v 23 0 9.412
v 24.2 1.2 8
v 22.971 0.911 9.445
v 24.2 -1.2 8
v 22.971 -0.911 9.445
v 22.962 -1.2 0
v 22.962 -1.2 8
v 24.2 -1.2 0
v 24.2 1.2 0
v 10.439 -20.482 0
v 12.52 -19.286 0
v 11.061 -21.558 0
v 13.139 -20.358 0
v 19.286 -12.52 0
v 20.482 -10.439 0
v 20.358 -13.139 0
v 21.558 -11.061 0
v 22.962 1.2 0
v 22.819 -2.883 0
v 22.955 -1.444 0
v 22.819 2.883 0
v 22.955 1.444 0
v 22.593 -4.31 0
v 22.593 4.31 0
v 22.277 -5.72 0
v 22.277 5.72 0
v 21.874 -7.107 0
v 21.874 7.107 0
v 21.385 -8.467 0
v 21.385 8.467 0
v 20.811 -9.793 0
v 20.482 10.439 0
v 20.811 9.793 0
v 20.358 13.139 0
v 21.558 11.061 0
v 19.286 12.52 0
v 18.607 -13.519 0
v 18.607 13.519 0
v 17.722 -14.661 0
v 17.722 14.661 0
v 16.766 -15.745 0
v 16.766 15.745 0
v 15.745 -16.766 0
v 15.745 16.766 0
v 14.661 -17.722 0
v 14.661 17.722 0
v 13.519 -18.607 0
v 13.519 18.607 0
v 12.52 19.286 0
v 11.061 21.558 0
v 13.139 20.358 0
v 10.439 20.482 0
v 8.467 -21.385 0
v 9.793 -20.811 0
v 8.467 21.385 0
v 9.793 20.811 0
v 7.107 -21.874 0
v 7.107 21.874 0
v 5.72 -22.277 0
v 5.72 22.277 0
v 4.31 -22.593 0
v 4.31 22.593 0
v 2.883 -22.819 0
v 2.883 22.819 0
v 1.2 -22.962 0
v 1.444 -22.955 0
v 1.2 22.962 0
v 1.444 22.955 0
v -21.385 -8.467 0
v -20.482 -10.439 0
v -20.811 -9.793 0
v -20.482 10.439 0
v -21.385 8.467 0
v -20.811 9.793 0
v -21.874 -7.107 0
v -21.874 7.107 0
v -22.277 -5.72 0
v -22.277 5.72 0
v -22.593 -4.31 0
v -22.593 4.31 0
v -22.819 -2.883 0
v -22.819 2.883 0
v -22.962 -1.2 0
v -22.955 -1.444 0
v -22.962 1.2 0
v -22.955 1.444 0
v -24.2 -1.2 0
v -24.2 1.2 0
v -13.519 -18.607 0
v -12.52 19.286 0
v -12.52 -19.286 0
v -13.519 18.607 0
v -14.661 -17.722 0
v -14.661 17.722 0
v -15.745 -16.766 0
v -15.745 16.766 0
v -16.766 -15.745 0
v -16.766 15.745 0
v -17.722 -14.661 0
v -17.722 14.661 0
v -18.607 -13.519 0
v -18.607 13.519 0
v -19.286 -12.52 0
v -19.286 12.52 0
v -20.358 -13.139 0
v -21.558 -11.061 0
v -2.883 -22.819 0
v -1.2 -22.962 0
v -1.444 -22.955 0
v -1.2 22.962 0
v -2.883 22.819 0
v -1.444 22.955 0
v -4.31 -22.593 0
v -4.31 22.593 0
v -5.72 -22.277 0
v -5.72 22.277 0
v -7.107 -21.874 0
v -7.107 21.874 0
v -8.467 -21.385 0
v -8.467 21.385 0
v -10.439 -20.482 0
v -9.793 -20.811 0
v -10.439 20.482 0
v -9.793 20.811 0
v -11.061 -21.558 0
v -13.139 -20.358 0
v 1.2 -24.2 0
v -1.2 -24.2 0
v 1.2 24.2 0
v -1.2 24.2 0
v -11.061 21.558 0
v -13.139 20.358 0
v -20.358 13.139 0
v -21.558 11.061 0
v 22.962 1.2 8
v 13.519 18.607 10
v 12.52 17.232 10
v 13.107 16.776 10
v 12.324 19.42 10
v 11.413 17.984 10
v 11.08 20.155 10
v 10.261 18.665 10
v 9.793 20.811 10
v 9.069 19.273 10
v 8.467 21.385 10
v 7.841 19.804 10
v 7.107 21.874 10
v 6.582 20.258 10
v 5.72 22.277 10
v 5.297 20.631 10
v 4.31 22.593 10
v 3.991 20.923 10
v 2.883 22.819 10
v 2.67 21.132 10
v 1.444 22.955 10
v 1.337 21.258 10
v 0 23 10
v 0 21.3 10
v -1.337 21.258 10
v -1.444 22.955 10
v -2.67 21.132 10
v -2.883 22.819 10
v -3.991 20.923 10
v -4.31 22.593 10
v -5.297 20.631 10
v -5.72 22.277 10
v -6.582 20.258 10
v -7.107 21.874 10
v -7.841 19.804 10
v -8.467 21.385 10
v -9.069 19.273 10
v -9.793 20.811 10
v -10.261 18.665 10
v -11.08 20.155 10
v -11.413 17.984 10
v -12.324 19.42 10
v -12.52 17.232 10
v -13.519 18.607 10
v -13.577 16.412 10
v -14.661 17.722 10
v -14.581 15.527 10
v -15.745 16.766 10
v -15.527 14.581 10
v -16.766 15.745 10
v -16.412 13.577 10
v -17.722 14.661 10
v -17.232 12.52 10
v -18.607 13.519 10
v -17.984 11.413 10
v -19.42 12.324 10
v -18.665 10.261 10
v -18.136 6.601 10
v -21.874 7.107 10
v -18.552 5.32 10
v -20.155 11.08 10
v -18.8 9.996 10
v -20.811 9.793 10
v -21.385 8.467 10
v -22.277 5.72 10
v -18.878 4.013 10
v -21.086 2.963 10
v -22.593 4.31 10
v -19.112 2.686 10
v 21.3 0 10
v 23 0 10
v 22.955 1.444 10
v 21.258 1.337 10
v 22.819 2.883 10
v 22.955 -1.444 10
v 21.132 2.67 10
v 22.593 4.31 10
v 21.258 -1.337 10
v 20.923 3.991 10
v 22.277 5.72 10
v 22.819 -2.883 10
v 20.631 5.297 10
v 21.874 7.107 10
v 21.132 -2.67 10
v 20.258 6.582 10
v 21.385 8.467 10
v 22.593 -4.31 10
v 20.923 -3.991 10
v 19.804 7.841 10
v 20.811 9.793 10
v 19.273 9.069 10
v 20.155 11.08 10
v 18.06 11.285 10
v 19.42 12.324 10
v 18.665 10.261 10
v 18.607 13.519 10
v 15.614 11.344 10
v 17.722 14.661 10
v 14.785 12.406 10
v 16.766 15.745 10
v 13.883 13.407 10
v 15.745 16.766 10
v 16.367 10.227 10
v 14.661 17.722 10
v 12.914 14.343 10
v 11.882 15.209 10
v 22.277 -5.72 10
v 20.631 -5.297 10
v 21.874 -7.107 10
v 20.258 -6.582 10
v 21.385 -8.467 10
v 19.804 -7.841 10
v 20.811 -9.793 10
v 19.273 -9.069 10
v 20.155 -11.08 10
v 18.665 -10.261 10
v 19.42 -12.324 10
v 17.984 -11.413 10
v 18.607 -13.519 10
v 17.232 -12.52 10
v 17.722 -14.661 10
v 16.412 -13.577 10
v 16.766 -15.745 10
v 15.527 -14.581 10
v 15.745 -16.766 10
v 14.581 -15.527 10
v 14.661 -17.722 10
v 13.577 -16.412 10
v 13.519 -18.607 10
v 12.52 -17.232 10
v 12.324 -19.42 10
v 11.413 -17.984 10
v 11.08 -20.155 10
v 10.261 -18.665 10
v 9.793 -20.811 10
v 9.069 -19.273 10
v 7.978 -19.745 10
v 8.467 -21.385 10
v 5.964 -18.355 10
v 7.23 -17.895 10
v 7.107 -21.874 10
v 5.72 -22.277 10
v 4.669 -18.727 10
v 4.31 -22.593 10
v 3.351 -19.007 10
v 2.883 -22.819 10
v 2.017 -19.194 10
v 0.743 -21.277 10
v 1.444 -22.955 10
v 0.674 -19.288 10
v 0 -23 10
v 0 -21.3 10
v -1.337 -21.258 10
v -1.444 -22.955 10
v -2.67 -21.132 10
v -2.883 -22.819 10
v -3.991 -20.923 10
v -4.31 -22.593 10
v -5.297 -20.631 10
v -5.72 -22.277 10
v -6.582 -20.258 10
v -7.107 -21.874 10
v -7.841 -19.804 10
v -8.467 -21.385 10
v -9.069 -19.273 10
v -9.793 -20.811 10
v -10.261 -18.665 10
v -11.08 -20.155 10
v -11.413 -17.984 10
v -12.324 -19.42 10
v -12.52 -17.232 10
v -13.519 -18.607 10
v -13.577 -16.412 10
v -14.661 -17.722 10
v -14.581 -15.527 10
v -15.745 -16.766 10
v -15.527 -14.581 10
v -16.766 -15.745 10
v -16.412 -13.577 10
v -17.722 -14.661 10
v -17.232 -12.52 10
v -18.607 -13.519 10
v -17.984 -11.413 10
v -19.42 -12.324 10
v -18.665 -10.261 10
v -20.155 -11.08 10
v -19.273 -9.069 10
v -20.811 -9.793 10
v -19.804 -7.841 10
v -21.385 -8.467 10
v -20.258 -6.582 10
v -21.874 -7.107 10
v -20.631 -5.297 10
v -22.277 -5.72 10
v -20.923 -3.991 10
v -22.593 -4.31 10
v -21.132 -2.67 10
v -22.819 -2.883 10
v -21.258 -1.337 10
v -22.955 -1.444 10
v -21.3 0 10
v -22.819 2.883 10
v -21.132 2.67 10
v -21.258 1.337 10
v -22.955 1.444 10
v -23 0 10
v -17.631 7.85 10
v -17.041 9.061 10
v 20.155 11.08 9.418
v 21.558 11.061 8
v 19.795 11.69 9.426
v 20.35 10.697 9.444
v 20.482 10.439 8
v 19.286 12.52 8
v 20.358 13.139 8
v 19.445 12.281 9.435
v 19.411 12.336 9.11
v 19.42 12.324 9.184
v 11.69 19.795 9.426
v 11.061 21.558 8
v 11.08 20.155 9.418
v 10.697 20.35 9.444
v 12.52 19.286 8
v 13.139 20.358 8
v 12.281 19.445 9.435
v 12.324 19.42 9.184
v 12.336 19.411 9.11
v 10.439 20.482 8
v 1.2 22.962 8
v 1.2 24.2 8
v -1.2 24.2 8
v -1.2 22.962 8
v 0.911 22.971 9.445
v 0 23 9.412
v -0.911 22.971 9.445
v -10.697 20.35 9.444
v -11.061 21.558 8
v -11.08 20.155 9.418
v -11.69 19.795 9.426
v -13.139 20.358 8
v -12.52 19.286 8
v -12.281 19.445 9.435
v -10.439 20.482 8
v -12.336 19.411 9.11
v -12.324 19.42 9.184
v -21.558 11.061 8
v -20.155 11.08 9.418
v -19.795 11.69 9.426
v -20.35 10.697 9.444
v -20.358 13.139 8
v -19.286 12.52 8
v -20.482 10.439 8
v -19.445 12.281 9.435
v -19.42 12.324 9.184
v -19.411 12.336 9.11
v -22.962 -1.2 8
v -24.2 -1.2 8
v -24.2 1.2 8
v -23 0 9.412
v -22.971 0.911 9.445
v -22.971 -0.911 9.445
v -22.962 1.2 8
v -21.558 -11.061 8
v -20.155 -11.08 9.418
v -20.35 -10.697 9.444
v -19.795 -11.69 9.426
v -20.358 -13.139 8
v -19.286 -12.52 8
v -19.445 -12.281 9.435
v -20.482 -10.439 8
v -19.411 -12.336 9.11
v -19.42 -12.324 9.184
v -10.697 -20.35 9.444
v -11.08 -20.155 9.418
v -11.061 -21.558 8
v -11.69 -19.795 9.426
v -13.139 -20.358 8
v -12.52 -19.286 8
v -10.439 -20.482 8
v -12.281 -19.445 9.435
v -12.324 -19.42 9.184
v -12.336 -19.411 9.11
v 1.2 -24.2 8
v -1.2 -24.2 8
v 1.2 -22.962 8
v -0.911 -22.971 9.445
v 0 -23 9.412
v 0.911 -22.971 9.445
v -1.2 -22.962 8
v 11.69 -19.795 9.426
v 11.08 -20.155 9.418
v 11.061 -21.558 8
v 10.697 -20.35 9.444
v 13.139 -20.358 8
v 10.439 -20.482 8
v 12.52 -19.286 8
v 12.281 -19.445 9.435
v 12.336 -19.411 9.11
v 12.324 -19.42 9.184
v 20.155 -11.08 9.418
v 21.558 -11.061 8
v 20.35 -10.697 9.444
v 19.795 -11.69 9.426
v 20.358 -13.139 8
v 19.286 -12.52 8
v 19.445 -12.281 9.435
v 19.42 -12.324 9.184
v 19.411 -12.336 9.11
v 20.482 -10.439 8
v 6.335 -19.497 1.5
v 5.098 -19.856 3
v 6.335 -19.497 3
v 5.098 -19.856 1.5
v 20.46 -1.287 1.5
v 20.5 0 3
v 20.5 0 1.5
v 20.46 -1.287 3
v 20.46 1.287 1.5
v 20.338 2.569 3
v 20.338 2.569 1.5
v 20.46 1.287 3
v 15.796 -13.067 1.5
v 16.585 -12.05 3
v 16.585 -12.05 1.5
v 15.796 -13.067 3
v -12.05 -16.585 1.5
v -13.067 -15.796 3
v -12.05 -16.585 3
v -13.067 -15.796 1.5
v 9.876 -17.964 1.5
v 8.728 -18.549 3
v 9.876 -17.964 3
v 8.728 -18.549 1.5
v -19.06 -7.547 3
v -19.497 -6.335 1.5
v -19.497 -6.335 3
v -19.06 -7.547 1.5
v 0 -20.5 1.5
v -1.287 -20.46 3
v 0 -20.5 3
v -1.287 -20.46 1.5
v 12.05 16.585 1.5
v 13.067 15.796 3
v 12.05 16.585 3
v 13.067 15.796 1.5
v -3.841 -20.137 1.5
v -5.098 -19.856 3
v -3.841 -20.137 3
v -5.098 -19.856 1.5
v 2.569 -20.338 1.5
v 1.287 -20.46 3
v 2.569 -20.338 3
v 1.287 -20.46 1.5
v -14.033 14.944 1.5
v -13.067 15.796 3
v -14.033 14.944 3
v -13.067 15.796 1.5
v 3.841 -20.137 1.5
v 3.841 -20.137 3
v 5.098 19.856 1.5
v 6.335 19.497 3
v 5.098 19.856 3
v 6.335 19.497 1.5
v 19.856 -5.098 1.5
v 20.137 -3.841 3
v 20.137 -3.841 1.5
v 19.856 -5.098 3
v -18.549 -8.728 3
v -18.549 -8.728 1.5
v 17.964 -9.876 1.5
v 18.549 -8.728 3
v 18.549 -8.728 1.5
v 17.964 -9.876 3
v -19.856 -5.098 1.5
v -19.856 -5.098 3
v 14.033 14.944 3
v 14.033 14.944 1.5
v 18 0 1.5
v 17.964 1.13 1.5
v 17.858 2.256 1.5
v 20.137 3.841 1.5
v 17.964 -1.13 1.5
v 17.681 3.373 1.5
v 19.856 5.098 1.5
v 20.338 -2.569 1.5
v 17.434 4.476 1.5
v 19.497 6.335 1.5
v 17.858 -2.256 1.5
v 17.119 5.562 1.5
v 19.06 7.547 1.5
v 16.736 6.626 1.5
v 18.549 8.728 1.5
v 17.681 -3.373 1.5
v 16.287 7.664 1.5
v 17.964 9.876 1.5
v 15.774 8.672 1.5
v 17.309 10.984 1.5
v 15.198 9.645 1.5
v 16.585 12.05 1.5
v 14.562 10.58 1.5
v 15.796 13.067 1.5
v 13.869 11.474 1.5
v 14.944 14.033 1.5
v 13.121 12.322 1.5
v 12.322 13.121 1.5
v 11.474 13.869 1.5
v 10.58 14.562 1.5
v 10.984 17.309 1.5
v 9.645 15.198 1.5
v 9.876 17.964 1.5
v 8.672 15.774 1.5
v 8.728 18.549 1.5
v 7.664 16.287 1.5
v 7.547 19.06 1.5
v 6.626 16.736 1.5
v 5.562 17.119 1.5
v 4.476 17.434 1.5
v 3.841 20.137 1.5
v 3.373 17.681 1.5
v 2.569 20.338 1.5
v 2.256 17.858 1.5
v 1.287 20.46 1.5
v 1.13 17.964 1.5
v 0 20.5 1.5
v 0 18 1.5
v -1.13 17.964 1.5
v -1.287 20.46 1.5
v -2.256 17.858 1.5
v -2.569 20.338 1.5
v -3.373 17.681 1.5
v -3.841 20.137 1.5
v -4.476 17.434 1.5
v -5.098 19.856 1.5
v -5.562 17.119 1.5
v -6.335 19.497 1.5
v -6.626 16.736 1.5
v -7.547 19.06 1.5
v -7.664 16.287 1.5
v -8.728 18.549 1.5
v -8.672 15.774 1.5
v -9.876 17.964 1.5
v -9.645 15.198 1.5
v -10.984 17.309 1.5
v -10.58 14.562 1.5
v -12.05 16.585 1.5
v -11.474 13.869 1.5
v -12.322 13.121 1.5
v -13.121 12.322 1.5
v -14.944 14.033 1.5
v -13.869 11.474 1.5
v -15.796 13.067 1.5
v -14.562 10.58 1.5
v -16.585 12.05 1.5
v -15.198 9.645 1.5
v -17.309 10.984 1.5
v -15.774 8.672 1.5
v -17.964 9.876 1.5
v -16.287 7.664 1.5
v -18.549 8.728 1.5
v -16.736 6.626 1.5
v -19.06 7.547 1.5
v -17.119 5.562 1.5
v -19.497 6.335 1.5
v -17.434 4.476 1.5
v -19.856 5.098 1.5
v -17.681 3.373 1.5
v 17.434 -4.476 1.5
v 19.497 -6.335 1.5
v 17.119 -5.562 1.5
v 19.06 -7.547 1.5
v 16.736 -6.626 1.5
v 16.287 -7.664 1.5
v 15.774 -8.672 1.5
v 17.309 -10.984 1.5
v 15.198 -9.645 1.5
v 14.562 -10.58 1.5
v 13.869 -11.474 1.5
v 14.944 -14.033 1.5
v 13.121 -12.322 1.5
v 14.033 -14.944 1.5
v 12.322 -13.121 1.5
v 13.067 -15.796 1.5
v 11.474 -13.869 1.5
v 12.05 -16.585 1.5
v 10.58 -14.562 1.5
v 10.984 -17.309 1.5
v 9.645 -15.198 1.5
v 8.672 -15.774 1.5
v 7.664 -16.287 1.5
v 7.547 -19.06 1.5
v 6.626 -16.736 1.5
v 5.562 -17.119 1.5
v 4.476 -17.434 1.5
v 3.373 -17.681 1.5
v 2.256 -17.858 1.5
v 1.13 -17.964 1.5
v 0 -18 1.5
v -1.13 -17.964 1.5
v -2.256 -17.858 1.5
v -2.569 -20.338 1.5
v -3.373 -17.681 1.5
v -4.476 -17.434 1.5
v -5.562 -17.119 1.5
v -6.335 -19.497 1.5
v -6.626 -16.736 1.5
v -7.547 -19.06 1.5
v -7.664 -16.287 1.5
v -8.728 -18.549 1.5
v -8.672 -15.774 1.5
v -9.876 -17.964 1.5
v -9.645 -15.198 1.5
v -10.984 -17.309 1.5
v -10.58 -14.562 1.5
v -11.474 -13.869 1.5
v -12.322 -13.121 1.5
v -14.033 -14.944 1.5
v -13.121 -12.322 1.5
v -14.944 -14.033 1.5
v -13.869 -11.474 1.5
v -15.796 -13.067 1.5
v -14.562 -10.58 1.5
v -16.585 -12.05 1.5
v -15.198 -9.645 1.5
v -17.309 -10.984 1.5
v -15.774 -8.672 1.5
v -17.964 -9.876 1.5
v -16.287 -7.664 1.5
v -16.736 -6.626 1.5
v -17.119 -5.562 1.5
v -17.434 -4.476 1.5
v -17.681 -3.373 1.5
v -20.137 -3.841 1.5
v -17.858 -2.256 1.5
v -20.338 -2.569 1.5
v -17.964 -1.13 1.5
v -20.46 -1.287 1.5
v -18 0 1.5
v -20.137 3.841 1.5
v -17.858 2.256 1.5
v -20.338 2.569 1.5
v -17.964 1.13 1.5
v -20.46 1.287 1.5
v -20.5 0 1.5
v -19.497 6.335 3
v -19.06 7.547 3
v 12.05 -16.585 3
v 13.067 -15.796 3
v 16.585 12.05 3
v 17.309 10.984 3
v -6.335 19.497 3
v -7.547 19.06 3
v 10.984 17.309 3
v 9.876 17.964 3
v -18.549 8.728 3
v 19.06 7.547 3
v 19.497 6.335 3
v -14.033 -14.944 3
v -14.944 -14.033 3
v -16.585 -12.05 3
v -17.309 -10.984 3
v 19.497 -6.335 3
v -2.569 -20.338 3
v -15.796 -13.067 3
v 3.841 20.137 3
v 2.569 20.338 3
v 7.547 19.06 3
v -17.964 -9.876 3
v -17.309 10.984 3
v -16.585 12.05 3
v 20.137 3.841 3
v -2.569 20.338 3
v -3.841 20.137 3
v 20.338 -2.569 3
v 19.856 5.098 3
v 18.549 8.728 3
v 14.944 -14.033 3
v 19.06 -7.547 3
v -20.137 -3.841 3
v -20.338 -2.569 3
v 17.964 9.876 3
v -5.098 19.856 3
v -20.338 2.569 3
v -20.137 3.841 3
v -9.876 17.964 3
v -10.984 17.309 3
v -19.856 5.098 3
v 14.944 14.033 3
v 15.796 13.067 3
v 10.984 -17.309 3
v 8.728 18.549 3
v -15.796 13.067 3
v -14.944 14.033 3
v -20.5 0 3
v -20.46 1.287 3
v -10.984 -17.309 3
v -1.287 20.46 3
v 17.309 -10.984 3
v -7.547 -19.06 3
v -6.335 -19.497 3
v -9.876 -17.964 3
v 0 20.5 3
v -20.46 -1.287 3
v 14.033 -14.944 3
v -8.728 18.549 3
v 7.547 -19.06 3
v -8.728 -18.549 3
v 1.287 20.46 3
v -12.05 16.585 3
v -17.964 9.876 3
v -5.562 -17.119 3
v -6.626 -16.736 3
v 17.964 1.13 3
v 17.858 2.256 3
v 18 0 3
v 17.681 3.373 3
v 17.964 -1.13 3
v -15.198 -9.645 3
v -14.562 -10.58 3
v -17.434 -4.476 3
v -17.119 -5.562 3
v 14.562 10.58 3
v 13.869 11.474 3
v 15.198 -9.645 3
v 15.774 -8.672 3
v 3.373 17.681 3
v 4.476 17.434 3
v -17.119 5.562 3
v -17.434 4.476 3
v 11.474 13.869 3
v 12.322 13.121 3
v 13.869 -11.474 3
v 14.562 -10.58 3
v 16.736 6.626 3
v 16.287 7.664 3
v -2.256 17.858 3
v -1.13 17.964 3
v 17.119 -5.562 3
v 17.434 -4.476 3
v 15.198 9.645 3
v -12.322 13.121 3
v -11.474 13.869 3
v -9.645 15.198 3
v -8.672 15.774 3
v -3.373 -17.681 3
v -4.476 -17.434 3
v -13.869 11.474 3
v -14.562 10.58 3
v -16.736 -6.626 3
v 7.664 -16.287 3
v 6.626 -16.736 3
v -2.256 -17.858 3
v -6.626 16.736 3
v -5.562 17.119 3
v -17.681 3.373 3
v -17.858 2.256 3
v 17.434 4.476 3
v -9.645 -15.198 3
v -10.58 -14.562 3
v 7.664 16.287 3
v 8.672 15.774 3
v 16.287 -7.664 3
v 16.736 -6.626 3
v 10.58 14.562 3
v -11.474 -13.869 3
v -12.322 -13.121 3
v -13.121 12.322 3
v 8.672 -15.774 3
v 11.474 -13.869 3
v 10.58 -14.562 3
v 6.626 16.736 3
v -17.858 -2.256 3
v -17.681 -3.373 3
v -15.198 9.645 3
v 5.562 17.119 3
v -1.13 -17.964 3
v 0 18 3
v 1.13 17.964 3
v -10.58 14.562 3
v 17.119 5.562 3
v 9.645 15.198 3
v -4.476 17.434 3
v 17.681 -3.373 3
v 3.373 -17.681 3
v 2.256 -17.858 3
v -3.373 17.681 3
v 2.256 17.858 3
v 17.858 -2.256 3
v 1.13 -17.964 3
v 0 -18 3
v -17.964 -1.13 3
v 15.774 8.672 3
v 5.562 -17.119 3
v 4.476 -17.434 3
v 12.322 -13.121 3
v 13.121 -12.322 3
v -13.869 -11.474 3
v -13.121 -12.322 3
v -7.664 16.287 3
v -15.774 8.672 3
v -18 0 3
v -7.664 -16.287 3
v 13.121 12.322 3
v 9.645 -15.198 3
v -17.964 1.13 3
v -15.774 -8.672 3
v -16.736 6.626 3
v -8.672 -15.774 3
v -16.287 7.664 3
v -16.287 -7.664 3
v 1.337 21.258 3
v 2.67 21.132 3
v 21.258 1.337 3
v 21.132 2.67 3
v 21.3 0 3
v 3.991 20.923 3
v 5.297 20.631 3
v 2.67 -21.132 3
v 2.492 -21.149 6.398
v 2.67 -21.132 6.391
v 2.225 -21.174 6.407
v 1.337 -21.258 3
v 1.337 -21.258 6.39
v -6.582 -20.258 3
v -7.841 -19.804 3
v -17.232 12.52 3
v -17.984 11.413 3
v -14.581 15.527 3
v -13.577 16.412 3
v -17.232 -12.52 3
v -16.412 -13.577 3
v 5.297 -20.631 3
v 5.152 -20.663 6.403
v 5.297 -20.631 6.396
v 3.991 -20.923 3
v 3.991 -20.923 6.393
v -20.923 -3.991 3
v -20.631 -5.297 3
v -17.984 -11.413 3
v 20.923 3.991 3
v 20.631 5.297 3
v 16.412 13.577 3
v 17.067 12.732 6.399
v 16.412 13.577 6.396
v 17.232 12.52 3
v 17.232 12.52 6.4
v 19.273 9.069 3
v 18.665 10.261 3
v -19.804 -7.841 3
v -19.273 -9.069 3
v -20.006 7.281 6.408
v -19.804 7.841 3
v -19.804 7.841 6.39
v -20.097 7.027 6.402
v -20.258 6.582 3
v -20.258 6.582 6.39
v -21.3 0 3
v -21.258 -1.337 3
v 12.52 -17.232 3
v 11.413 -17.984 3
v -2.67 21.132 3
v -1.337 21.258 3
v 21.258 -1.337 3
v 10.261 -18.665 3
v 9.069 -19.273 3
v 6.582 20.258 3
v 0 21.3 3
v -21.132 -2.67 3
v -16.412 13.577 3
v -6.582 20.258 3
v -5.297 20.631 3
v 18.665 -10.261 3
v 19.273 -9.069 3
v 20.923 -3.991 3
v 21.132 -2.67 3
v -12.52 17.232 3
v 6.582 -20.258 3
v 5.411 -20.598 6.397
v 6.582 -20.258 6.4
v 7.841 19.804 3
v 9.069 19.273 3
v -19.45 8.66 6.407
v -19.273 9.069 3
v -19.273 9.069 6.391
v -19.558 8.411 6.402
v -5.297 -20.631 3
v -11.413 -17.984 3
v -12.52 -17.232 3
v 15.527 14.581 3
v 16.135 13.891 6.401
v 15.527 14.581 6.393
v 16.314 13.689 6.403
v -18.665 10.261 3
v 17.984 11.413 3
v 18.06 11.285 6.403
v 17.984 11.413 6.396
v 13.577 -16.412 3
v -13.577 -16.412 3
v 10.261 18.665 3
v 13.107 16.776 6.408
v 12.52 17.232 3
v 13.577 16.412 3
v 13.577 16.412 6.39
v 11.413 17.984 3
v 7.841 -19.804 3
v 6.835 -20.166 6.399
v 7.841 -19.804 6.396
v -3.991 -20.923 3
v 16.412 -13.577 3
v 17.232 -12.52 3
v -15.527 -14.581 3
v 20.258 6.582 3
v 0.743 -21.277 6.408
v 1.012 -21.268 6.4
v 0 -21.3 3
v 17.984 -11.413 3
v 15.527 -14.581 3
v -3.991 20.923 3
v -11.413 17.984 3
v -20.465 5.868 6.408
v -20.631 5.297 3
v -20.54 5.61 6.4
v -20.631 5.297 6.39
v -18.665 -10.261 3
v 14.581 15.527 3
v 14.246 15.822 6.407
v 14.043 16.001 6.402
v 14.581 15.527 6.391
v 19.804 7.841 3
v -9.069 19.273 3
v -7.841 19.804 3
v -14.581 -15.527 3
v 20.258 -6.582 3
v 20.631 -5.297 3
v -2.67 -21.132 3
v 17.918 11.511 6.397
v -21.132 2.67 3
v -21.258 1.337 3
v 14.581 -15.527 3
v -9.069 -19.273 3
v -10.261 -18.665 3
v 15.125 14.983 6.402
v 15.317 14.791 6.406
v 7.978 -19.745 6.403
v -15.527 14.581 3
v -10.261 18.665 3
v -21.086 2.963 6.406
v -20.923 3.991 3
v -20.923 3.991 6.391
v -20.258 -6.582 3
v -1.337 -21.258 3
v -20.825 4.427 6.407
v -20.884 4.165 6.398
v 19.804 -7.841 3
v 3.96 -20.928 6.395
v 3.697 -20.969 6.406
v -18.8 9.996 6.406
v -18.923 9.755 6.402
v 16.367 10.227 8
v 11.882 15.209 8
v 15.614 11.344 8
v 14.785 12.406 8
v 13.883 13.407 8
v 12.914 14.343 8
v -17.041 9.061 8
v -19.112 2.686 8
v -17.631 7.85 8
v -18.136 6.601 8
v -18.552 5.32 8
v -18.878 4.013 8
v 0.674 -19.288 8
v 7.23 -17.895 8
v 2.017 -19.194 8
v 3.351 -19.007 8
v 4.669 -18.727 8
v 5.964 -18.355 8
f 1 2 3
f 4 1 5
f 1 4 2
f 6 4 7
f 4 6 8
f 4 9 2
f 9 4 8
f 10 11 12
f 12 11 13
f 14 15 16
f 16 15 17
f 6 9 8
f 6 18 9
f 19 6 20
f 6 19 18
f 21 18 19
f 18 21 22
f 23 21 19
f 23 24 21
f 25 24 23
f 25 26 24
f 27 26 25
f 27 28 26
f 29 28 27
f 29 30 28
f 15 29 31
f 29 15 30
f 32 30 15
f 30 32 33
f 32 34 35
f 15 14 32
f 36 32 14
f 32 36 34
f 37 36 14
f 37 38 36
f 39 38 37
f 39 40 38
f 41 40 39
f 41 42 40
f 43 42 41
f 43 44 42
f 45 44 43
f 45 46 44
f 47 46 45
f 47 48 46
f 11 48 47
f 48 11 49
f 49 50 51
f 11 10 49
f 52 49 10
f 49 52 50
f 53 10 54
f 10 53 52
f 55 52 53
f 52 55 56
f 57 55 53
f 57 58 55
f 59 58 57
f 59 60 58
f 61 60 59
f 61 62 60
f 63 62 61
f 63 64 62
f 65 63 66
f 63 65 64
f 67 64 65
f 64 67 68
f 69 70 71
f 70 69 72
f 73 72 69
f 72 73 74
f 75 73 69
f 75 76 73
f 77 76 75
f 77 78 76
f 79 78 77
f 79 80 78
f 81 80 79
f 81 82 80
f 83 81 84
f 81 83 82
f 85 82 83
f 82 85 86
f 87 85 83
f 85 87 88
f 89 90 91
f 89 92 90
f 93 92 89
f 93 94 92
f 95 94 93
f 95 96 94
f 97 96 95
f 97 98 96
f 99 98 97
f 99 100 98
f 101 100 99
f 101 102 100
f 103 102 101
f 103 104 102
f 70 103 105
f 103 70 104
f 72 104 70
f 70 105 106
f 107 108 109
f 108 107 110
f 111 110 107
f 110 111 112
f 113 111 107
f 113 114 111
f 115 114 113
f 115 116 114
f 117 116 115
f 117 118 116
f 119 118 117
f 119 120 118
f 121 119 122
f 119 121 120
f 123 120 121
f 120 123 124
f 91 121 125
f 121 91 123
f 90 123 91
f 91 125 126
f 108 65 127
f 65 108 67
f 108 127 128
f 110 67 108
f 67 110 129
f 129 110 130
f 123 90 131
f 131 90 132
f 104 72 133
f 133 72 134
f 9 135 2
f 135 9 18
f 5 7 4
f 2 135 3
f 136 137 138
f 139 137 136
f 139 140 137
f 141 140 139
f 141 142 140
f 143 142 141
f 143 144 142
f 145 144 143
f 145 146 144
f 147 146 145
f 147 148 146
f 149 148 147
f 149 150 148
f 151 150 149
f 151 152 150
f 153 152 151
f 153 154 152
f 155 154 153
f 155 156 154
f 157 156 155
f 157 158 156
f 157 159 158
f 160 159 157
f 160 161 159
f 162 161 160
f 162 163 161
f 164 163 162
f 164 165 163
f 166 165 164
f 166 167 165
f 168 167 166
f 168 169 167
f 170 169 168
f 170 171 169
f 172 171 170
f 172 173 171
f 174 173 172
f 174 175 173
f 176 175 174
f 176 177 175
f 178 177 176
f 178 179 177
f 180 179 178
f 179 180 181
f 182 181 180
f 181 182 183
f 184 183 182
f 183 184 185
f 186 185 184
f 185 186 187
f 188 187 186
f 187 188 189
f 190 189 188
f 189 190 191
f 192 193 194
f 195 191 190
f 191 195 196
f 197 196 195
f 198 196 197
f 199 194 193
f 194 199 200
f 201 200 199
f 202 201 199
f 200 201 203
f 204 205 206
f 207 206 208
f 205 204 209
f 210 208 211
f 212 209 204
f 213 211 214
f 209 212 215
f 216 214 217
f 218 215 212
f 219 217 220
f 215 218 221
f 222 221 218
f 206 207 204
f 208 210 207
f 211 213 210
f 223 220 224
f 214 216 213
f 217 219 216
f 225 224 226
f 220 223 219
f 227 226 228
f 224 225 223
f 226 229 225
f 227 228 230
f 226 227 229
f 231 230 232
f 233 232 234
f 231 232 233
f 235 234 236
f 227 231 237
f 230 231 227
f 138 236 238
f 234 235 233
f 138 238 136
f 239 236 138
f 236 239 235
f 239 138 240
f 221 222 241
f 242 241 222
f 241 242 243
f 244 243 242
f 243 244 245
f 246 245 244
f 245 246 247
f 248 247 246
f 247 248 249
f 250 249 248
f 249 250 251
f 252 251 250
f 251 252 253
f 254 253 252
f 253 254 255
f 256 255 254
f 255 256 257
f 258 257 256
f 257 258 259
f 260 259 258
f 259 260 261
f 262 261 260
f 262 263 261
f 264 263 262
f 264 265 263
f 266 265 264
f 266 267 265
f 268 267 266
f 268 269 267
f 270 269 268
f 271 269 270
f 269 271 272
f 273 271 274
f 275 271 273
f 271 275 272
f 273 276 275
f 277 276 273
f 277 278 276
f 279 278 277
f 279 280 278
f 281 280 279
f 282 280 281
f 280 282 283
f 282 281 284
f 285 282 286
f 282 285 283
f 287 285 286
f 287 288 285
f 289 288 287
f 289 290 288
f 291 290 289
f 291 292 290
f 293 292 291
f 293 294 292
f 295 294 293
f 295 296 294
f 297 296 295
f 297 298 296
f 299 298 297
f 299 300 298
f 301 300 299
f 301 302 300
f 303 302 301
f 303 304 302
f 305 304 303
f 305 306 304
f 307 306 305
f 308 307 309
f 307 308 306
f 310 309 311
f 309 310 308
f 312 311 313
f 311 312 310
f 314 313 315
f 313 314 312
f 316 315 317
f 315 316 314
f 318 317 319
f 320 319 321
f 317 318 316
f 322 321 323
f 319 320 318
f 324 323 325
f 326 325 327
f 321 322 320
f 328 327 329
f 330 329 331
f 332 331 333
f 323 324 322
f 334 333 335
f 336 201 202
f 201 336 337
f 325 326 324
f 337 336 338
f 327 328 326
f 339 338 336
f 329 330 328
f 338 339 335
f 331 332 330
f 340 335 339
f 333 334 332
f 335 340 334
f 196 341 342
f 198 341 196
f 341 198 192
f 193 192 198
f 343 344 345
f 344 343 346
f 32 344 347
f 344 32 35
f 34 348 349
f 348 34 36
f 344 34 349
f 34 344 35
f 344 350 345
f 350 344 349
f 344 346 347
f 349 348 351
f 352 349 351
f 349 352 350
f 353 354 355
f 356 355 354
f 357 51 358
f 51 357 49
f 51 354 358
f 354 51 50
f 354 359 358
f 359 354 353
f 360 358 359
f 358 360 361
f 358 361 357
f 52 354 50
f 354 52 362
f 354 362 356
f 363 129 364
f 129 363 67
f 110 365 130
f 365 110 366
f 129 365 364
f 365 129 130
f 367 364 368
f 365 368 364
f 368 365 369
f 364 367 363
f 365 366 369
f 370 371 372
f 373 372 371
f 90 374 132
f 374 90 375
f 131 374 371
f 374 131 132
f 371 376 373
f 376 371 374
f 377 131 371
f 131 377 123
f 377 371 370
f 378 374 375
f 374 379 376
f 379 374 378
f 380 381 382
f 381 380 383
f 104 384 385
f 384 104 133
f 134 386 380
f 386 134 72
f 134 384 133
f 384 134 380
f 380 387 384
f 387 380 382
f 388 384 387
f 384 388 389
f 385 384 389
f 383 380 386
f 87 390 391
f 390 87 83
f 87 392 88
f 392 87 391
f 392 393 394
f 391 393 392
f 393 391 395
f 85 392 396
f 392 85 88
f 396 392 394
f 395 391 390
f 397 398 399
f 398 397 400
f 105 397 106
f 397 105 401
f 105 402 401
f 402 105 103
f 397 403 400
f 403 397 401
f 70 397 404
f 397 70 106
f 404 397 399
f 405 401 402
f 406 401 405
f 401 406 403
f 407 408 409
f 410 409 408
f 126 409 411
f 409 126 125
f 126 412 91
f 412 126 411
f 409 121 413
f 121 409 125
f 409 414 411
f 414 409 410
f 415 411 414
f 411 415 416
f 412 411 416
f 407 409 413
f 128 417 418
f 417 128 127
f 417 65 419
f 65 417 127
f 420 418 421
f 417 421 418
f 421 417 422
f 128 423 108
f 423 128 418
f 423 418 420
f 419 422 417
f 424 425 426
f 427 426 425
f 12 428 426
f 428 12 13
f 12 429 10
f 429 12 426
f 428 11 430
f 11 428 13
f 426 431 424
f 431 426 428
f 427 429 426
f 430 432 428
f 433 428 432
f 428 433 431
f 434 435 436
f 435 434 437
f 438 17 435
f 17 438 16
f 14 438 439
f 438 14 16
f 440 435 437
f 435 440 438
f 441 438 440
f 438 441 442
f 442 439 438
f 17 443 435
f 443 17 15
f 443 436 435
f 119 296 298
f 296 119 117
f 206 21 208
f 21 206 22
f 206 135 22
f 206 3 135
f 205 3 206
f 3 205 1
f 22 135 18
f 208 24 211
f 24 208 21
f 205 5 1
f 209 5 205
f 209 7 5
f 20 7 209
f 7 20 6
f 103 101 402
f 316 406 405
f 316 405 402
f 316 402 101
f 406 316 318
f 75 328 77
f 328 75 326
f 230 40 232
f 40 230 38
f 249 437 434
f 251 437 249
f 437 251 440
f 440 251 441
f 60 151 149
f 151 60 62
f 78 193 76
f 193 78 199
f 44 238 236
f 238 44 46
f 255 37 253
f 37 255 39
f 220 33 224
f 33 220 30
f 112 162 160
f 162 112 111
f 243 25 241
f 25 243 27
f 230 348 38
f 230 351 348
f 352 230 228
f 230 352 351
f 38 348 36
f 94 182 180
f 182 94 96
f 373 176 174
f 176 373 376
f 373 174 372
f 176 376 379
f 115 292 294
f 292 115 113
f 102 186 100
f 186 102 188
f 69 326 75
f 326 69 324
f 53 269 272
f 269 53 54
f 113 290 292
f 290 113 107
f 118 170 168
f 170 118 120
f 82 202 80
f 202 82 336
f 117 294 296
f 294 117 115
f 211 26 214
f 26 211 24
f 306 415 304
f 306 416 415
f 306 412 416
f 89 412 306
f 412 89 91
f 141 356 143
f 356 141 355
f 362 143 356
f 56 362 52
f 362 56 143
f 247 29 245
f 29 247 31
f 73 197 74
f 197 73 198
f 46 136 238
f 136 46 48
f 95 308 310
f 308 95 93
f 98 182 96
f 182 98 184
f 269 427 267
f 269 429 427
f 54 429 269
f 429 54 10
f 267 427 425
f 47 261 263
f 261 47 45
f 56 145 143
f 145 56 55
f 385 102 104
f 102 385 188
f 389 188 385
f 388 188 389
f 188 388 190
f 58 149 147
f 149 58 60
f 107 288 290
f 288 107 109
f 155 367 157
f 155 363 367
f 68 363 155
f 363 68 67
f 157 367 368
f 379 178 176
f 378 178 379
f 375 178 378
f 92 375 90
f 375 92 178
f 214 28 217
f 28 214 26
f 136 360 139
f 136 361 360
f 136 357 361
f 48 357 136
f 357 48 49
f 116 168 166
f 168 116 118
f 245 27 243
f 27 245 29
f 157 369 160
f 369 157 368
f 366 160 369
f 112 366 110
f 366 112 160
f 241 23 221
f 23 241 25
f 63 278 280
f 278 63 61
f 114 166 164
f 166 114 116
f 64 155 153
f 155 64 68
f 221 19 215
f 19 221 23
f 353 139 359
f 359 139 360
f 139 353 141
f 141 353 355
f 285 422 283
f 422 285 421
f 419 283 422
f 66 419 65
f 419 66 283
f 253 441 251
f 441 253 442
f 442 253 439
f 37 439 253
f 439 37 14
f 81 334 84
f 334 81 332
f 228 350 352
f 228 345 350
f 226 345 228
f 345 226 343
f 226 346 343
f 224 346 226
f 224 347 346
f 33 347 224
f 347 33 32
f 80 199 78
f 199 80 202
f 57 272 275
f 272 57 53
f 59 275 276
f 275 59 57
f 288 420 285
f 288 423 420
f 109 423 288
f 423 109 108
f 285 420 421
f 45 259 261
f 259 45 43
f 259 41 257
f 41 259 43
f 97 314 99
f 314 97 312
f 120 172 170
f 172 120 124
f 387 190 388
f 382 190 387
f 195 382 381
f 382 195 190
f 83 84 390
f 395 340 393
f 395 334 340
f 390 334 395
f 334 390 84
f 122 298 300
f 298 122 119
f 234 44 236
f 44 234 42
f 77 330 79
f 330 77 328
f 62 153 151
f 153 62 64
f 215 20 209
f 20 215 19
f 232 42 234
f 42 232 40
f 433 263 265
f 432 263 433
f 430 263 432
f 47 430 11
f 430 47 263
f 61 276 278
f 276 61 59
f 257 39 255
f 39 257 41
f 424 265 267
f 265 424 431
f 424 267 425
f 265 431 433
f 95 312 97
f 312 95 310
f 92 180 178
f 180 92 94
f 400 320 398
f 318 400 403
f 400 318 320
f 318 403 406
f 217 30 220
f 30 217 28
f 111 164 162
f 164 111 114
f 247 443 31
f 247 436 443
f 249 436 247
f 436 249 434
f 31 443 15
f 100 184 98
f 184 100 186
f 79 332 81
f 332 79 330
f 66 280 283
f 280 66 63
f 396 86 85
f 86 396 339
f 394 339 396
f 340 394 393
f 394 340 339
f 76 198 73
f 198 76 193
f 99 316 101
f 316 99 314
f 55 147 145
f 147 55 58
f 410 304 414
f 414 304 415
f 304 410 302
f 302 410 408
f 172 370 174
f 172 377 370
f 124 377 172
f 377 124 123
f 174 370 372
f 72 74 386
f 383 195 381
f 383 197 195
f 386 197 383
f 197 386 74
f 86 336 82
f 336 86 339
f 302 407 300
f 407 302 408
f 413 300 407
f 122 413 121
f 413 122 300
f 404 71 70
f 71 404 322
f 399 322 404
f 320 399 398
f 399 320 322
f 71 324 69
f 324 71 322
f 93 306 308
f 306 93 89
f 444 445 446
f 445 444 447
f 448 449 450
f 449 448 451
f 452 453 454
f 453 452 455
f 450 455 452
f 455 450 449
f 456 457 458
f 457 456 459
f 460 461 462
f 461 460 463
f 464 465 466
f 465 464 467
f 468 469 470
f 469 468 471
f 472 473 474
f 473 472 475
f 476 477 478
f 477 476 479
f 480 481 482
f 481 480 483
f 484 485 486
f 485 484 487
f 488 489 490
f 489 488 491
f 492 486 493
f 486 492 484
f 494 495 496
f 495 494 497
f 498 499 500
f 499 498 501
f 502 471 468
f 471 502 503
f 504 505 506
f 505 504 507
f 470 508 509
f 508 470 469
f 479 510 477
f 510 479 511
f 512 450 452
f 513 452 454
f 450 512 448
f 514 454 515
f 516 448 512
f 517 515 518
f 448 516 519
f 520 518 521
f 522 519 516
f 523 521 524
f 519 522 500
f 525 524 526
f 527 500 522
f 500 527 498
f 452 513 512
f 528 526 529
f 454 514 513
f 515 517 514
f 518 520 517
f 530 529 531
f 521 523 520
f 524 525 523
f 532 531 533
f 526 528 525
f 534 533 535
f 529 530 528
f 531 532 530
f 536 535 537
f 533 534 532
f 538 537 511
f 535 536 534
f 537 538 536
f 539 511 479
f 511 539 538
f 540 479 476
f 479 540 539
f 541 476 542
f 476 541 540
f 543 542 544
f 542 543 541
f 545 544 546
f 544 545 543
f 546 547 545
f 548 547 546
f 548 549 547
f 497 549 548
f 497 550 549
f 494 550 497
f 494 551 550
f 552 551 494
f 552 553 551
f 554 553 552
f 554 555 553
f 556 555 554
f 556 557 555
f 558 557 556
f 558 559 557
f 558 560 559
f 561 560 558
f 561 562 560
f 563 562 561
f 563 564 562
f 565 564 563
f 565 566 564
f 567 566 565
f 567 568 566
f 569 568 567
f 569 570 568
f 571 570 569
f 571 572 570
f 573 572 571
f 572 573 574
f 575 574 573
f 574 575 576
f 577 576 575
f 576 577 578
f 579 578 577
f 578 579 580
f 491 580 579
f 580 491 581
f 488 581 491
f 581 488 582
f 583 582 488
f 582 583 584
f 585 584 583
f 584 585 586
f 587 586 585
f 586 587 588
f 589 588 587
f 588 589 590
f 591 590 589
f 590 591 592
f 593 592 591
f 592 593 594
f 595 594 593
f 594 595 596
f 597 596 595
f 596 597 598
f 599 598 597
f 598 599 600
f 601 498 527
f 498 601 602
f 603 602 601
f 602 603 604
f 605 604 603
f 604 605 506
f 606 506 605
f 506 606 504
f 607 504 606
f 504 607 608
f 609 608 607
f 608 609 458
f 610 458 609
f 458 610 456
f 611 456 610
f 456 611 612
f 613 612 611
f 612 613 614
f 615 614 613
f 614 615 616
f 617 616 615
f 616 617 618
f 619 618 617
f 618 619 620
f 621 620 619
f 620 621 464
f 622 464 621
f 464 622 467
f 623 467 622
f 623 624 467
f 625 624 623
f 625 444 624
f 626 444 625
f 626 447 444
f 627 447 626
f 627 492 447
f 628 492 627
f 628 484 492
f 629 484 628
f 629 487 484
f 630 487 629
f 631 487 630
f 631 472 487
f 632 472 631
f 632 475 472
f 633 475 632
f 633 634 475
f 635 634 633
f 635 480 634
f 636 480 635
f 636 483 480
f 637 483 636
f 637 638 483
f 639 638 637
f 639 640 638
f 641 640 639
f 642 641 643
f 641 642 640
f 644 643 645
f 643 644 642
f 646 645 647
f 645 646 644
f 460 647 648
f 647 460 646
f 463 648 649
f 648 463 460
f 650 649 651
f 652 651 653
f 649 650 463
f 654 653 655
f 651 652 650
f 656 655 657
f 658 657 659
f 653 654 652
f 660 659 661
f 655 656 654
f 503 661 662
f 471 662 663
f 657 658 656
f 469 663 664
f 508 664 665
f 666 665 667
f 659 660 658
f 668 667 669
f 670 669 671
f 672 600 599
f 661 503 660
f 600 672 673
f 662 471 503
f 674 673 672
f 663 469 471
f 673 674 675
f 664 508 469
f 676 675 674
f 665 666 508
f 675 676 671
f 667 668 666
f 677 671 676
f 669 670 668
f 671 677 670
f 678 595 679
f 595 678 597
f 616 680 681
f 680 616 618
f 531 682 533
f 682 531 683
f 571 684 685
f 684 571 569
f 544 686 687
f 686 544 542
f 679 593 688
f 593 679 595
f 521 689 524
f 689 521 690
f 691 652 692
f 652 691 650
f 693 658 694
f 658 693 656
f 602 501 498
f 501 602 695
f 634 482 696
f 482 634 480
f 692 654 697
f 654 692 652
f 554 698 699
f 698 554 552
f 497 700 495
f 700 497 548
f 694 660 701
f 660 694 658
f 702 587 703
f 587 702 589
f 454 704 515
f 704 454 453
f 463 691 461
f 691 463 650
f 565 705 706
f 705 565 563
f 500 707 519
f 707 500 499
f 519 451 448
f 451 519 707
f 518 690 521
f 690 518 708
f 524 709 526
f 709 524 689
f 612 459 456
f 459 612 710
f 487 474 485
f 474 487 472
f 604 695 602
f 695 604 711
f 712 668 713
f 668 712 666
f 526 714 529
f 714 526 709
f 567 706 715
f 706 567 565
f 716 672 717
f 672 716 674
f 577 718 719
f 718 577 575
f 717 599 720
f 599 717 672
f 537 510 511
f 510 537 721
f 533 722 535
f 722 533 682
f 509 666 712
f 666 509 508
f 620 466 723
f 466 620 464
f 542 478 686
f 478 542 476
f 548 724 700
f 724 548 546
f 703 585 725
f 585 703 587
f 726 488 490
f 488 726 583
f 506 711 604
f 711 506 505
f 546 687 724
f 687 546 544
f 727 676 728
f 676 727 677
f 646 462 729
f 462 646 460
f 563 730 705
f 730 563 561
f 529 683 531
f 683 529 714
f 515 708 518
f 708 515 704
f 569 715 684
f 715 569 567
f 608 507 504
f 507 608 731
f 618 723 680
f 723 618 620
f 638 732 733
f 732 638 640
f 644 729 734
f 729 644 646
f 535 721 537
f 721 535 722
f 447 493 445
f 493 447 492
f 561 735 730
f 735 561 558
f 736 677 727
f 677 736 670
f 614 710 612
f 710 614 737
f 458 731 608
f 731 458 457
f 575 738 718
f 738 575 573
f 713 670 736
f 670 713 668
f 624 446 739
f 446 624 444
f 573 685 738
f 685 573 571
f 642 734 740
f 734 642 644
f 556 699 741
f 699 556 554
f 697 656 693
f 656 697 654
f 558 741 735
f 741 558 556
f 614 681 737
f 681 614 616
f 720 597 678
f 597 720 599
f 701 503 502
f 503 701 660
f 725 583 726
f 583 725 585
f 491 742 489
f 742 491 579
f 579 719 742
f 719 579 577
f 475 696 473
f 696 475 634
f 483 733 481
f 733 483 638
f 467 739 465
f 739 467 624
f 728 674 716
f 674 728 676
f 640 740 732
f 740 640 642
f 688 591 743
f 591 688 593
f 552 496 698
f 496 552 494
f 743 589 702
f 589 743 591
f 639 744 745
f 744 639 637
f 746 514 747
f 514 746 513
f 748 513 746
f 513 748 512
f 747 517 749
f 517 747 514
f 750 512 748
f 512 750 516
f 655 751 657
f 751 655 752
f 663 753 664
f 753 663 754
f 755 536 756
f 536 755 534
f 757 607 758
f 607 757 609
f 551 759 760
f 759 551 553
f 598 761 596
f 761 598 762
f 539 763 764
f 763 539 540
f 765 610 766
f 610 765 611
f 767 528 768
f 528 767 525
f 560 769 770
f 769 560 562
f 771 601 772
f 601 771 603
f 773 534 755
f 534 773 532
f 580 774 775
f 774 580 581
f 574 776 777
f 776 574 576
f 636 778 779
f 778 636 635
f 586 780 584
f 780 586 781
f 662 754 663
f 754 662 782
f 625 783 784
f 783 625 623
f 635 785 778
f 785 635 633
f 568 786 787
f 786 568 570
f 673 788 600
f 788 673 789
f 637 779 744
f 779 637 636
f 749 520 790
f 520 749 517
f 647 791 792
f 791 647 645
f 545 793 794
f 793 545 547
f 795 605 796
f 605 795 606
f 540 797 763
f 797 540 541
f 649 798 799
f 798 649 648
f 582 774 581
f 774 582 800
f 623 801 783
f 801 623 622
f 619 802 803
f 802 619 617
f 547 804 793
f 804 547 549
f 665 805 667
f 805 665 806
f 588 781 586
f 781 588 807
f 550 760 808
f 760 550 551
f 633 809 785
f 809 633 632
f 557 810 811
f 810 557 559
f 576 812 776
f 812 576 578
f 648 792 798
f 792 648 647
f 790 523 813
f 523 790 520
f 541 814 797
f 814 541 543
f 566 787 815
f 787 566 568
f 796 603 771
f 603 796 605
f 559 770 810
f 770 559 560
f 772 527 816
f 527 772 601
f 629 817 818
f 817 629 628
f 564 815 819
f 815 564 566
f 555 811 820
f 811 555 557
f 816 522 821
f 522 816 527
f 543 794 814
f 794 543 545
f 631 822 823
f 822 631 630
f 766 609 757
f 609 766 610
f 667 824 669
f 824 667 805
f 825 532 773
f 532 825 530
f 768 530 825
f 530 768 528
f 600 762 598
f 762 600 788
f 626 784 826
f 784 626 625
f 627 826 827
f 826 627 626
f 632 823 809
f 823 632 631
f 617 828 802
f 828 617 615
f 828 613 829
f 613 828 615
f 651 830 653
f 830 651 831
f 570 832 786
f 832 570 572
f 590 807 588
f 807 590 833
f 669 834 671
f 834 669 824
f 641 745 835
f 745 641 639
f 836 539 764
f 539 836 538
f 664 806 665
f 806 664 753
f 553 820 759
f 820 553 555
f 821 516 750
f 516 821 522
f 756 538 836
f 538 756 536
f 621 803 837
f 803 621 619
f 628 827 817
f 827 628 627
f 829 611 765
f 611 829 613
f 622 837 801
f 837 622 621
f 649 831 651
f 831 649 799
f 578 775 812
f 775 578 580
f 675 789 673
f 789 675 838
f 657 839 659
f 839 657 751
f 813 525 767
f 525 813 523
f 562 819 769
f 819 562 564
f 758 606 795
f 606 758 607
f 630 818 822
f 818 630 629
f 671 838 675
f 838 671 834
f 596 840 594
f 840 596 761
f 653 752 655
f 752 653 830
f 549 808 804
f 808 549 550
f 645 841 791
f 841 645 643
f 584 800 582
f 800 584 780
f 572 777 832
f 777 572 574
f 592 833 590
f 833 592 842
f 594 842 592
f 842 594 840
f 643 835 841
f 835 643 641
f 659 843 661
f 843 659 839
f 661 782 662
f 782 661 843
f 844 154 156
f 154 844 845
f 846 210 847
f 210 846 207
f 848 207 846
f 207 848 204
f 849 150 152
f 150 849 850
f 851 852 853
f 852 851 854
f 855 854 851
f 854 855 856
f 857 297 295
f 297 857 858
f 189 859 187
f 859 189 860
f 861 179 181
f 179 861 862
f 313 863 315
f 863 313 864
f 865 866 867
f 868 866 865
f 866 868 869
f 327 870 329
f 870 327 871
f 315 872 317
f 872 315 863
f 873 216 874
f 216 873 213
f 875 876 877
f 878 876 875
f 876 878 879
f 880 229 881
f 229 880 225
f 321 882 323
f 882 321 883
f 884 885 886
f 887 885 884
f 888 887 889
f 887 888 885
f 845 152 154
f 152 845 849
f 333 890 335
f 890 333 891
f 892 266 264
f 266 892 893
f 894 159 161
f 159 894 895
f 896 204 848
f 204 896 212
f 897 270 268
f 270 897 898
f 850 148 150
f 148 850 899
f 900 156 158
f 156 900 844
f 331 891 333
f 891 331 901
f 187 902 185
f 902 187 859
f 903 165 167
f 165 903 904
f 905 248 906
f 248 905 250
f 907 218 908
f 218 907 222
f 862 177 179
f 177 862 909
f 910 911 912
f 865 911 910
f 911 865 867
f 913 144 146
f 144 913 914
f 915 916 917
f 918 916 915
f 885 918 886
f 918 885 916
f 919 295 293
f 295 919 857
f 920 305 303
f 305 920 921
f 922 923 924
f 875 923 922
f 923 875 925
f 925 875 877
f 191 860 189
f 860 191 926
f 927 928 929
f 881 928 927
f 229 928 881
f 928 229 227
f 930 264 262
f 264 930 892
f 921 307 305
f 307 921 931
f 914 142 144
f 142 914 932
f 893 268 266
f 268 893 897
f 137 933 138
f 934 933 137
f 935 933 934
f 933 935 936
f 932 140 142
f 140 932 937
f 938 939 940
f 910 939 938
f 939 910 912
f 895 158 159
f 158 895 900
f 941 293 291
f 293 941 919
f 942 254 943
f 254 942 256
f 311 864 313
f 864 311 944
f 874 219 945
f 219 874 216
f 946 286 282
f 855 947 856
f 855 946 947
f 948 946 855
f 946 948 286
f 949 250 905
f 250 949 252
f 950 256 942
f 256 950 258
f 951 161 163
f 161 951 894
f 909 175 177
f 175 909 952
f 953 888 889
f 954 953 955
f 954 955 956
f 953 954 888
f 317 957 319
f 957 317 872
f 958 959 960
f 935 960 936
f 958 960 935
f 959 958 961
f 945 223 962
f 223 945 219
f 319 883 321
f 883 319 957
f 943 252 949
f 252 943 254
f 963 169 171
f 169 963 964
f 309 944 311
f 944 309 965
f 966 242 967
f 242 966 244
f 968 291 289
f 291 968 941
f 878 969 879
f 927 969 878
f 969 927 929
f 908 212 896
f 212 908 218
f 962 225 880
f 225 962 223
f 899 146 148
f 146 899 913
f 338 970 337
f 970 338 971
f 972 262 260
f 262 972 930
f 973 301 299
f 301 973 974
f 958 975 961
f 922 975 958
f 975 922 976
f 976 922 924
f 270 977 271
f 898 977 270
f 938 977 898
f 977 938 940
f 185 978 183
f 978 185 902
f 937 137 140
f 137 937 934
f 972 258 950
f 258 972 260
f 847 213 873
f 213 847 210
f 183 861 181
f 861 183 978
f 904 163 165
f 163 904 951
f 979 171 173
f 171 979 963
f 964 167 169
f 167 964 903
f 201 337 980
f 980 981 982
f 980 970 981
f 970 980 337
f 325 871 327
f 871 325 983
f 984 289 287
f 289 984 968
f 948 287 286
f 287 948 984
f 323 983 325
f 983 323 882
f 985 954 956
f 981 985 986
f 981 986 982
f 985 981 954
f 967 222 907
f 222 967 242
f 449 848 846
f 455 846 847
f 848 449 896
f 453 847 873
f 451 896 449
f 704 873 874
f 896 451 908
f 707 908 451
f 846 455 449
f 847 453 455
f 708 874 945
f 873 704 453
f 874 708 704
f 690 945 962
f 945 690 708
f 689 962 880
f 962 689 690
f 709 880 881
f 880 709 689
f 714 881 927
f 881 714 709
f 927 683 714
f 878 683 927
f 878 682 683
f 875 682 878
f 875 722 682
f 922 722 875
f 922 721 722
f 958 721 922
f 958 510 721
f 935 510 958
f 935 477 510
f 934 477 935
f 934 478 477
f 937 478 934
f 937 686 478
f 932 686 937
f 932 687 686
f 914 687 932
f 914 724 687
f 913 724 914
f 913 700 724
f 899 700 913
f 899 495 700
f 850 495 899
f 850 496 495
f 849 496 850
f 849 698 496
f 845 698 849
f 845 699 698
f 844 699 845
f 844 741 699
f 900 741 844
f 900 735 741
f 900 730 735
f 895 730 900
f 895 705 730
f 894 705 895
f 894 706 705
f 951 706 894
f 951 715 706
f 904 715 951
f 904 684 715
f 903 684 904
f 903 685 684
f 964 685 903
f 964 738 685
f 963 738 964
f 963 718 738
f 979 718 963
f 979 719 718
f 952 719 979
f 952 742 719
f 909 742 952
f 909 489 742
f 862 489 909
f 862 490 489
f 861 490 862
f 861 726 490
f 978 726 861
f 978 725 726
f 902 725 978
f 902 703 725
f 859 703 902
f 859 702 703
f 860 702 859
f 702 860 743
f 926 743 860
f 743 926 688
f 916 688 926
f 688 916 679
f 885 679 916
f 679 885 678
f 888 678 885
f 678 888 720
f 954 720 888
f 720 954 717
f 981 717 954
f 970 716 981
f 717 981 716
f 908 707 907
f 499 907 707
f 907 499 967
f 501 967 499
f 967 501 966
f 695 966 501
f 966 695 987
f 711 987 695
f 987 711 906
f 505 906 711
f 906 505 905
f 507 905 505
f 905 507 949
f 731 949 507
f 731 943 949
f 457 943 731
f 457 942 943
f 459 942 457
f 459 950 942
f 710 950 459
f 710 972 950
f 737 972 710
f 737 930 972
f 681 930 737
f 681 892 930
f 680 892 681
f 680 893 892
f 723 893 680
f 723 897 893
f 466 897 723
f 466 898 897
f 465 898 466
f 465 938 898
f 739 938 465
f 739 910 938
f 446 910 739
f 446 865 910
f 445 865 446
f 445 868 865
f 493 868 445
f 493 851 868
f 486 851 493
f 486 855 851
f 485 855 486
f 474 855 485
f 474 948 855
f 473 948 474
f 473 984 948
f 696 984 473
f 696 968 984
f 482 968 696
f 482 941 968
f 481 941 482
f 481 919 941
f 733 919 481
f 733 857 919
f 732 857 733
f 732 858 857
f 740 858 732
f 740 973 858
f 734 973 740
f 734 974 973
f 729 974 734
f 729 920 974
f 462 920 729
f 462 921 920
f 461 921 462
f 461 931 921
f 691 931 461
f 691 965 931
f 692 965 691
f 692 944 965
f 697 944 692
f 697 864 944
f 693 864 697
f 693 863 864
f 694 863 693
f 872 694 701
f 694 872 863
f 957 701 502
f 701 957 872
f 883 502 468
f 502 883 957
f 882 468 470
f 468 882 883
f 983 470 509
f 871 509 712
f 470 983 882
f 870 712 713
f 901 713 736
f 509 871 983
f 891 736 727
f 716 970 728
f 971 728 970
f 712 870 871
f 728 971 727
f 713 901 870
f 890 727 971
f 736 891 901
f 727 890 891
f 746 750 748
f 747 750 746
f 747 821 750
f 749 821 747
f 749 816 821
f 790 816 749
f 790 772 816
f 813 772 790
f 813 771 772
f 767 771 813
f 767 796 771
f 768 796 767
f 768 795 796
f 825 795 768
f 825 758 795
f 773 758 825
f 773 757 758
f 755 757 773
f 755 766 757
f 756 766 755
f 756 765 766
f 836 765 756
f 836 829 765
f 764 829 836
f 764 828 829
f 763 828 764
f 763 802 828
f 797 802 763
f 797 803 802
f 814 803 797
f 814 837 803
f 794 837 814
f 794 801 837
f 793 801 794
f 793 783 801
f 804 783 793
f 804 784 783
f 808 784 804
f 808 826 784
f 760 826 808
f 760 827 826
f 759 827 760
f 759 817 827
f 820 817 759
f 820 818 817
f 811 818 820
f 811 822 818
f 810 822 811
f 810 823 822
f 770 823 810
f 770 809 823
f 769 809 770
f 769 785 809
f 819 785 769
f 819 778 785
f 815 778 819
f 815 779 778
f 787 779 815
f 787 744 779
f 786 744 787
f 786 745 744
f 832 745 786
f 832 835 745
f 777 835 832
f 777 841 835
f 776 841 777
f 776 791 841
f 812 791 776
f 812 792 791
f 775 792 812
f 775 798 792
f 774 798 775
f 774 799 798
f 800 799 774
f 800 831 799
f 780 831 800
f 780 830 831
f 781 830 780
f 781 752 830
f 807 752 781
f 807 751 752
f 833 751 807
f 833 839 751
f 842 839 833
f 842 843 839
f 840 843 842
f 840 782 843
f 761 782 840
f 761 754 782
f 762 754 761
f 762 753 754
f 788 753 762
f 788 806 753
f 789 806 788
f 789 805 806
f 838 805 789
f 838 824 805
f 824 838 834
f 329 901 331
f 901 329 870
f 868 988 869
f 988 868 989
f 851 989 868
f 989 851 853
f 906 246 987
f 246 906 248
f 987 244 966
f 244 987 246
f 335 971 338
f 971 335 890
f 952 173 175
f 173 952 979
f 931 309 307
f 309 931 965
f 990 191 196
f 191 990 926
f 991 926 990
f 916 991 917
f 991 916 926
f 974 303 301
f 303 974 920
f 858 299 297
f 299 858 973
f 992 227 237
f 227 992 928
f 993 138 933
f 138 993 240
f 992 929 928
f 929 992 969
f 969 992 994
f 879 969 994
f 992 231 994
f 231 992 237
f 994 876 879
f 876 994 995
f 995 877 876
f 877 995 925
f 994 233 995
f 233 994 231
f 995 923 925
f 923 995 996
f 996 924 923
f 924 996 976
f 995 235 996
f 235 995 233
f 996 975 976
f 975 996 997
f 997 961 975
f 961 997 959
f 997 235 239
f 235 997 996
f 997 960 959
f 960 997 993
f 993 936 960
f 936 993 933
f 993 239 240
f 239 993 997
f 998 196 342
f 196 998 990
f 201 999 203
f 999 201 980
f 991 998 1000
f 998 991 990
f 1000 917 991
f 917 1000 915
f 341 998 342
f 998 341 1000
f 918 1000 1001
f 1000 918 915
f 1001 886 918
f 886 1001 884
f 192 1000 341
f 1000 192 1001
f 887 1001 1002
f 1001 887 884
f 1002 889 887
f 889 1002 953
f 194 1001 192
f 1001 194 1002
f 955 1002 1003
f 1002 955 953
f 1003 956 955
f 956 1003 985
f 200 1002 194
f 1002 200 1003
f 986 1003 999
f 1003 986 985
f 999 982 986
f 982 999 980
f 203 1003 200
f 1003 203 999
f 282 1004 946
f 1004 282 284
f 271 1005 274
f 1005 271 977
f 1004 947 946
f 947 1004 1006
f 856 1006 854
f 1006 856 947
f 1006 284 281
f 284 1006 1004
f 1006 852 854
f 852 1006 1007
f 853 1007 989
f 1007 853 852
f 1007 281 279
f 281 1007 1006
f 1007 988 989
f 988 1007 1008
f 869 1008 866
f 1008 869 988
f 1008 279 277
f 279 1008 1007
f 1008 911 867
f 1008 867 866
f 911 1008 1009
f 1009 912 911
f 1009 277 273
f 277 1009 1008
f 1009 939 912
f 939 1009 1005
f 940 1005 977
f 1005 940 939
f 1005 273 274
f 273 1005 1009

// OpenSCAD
// file: helpers.scad
// ShopVac Rat Trap - Helper Modules
// Reusable geometry primitives for trap components.
// This file must NOT render any geometry on its own.

// ========== TUBE ==========
// Generates a hollow cylinder (pipe section).
// Parameters:
//   length - axial length of tube
//   od     - outer diameter
//   wall   - wall thickness
module tube(length, od, wall) {
    difference() {
        cylinder(d=od, h=length);
        translate([0, 0, -1])
            cylinder(d=od - 2*wall, h=length + 2);
    }
}

// ========== FLANGE ==========
// Generates a flange ring with a center hole and evenly-spaced bolt holes.
// All dimensions are explicit parameters - no globals referenced.
// Parameters:
//   d             - outer diameter of flange
//   thick         - thickness (height) of flange
//   center_hole_d - diameter of center bore
//   hole_d        - bolt hole diameter
//   inset         - distance from flange edge to bolt hole center
//   hole_count    - number of bolt holes (default 4, evenly spaced)
//   angle_offset  - angular offset in degrees for first bolt hole (default 0)
module flange(d, thick, center_hole_d, hole_d, inset, hole_count=4, angle_offset=0) {
    angle_step = 360 / hole_count;
    difference() {
        cylinder(d=d, h=thick);

        // Center hole
        translate([0, 0, -1])
            cylinder(d=center_hole_d, h=thick + 2);

        // Bolt holes evenly spaced
        for (i = [0 : hole_count - 1]) {
            rotate([0, 0, angle_offset + i * angle_step])
                translate([d/2 - inset, 0, -1])
                    cylinder(d=hole_d, h=thick + 2);
        }
    }
}

// ========== ROUNDED BOX ==========
// Generates a box with rounded vertical edges (XY plane rounding).
// Uses minkowski sum of a reduced cube and a cylinder.
// Parameters:
//   x - total X dimension
//   y - total Y dimension
//   z - total Z dimension (height)
//   r - corner radius
module rounded_box(x, y, z, r) {
    translate([r, r, 0])
    minkowski() {
        cube([x - 2*r, y - 2*r, z - 1]);
        cylinder(r=r, h=1);
    }
}
// file: bait_station.scad
// ShopVac Rat Trap - Modular Bait Station
// Tube section with side-mounted (+X) bayonet bait port, flat cradle base (-Y),
// and bayonet-twist cap.
// Uses trap_module_base for the main tube body with flange joints.

include <trap_modules.scad>

// ========== CORE PARAMETERS ==========

bait_length = 80;                   // Tube body length
cradle_width = 70;                  // Cradle base width (clears 45-deg flange bolts)
cap_od = bait_cap_od;               // 46mm
port_id = bait_port_id;             // 36mm
port_od = bait_port_od;             // 40mm
port_neck_height = bait_port_neck_height; // 15mm
cap_height = bait_cap_height;       // 18mm

// ========== MODULES ==========

module bait_station_module() {
    body_z_offset = lip_length + flange_thickness; // 15mm
    port_z = body_z_offset + bait_length / 2;      // 55mm

    difference() {
        union() {
            // Main tube body with female flange (z=0), male flange (top), and cable conduit
            trap_module_base(bait_length, male_end=true, female_end=true);

            // Flat cradle base flush with ground plane (-Y = -65mm)
            tube_cradle_base(bait_length, cradle_width=cradle_width);

            // Side-mounted (+X) bayonet bait port boss
            bayonet_bait_port_boss(port_z);
        }

        // Bayonet bait port bore and L-slots
        bayonet_bait_port_cuts(port_z);
    }
}

module bait_cap() {
    // Bayonet-twist cap with grip ribs and gasket groove.
    // Printed closed-face down on the build plate (z=0) with 45-deg chamfers
    // under the bayonet locking tabs and grip ribs for 100% supportless printing.
    cap_id = port_od + 2 + 2*print_tolerance; // 42.6mm (clears 42mm bayonet ring)
    tab_inner_r = port_od/2 - 1 + print_tolerance; // 19.3mm (clears 19mm slot floor)
    tab_outer_r = cap_id/2 + 0.5;             // Fused into inner cap wall
    tab_radial_depth = (cap_id/2) - tab_inner_r; // ~2.0mm inward projection

    difference() {
        union() {
            // Main cylindrical cap body (flat top resting on build plate at z=0)
            cylinder(d=cap_od, h=cap_height);

            // External vertical grip ribs (start at z=0 on build plate, beveled at top)
            for (r = [0 : 30 : 330]) {
                rotate([0, 0, r])
                    hull() {
                        translate([cap_od/2 - 1, -1.2, 0])
                            cube([2.2, 2.4, cap_height - 2]);
                        translate([cap_od/2 - 1, -0.8, 0])
                            cube([0.5, 1.6, cap_height]);
                    }
            }
        }

        // Internal cavity receiving port neck (ceiling at z=3mm)
        translate([0, 0, 3])
            cylinder(d=cap_id, h=cap_height);

        // Gasket groove cut into the interior ceiling at z=3mm (opens into cavity)
        translate([0, 0, 3 - gasket_groove_depth])
            difference() {
                cylinder(d=port_id + 2*gasket_groove_width, h=gasket_groove_depth + 0.1);
                translate([0, 0, -1])
                    cylinder(d=port_id, h=gasket_groove_depth + 2);
            }
    }

    // 3x cylindrical bayonet locking tabs at open rim (z = cap_height - bayonet_tab_height)
    // with 45-deg lower support taper so they print with zero overhang.
    for (i = [0 : bayonet_tab_count - 1]) {
        rotate([0, 0, bayonet_angle_offset + i * (360 / bayonet_tab_count) - bayonet_tab_angle/2])
            rotate_extrude(angle=bayonet_tab_angle)
                polygon(points=[
                    [tab_outer_r, cap_height - bayonet_tab_height - tab_radial_depth],
                    [tab_outer_r, cap_height],
                    [tab_inner_r, cap_height],
                    [tab_inner_r, cap_height - bayonet_tab_height]
                ]);
    }
}

// ========== RENDER ==========
bait_station_module();
// main file
// ShopVac Rat Trap - Bait Cap (standalone render)
// Bayonet-twist cap for the bait station port.
// This file exists so the build script can generate bait_cap.stl
// independently from bait_station.stl.

include <trap_modules.scad>
use <bait_station.scad>

// ========== RENDER ==========
bait_cap();
